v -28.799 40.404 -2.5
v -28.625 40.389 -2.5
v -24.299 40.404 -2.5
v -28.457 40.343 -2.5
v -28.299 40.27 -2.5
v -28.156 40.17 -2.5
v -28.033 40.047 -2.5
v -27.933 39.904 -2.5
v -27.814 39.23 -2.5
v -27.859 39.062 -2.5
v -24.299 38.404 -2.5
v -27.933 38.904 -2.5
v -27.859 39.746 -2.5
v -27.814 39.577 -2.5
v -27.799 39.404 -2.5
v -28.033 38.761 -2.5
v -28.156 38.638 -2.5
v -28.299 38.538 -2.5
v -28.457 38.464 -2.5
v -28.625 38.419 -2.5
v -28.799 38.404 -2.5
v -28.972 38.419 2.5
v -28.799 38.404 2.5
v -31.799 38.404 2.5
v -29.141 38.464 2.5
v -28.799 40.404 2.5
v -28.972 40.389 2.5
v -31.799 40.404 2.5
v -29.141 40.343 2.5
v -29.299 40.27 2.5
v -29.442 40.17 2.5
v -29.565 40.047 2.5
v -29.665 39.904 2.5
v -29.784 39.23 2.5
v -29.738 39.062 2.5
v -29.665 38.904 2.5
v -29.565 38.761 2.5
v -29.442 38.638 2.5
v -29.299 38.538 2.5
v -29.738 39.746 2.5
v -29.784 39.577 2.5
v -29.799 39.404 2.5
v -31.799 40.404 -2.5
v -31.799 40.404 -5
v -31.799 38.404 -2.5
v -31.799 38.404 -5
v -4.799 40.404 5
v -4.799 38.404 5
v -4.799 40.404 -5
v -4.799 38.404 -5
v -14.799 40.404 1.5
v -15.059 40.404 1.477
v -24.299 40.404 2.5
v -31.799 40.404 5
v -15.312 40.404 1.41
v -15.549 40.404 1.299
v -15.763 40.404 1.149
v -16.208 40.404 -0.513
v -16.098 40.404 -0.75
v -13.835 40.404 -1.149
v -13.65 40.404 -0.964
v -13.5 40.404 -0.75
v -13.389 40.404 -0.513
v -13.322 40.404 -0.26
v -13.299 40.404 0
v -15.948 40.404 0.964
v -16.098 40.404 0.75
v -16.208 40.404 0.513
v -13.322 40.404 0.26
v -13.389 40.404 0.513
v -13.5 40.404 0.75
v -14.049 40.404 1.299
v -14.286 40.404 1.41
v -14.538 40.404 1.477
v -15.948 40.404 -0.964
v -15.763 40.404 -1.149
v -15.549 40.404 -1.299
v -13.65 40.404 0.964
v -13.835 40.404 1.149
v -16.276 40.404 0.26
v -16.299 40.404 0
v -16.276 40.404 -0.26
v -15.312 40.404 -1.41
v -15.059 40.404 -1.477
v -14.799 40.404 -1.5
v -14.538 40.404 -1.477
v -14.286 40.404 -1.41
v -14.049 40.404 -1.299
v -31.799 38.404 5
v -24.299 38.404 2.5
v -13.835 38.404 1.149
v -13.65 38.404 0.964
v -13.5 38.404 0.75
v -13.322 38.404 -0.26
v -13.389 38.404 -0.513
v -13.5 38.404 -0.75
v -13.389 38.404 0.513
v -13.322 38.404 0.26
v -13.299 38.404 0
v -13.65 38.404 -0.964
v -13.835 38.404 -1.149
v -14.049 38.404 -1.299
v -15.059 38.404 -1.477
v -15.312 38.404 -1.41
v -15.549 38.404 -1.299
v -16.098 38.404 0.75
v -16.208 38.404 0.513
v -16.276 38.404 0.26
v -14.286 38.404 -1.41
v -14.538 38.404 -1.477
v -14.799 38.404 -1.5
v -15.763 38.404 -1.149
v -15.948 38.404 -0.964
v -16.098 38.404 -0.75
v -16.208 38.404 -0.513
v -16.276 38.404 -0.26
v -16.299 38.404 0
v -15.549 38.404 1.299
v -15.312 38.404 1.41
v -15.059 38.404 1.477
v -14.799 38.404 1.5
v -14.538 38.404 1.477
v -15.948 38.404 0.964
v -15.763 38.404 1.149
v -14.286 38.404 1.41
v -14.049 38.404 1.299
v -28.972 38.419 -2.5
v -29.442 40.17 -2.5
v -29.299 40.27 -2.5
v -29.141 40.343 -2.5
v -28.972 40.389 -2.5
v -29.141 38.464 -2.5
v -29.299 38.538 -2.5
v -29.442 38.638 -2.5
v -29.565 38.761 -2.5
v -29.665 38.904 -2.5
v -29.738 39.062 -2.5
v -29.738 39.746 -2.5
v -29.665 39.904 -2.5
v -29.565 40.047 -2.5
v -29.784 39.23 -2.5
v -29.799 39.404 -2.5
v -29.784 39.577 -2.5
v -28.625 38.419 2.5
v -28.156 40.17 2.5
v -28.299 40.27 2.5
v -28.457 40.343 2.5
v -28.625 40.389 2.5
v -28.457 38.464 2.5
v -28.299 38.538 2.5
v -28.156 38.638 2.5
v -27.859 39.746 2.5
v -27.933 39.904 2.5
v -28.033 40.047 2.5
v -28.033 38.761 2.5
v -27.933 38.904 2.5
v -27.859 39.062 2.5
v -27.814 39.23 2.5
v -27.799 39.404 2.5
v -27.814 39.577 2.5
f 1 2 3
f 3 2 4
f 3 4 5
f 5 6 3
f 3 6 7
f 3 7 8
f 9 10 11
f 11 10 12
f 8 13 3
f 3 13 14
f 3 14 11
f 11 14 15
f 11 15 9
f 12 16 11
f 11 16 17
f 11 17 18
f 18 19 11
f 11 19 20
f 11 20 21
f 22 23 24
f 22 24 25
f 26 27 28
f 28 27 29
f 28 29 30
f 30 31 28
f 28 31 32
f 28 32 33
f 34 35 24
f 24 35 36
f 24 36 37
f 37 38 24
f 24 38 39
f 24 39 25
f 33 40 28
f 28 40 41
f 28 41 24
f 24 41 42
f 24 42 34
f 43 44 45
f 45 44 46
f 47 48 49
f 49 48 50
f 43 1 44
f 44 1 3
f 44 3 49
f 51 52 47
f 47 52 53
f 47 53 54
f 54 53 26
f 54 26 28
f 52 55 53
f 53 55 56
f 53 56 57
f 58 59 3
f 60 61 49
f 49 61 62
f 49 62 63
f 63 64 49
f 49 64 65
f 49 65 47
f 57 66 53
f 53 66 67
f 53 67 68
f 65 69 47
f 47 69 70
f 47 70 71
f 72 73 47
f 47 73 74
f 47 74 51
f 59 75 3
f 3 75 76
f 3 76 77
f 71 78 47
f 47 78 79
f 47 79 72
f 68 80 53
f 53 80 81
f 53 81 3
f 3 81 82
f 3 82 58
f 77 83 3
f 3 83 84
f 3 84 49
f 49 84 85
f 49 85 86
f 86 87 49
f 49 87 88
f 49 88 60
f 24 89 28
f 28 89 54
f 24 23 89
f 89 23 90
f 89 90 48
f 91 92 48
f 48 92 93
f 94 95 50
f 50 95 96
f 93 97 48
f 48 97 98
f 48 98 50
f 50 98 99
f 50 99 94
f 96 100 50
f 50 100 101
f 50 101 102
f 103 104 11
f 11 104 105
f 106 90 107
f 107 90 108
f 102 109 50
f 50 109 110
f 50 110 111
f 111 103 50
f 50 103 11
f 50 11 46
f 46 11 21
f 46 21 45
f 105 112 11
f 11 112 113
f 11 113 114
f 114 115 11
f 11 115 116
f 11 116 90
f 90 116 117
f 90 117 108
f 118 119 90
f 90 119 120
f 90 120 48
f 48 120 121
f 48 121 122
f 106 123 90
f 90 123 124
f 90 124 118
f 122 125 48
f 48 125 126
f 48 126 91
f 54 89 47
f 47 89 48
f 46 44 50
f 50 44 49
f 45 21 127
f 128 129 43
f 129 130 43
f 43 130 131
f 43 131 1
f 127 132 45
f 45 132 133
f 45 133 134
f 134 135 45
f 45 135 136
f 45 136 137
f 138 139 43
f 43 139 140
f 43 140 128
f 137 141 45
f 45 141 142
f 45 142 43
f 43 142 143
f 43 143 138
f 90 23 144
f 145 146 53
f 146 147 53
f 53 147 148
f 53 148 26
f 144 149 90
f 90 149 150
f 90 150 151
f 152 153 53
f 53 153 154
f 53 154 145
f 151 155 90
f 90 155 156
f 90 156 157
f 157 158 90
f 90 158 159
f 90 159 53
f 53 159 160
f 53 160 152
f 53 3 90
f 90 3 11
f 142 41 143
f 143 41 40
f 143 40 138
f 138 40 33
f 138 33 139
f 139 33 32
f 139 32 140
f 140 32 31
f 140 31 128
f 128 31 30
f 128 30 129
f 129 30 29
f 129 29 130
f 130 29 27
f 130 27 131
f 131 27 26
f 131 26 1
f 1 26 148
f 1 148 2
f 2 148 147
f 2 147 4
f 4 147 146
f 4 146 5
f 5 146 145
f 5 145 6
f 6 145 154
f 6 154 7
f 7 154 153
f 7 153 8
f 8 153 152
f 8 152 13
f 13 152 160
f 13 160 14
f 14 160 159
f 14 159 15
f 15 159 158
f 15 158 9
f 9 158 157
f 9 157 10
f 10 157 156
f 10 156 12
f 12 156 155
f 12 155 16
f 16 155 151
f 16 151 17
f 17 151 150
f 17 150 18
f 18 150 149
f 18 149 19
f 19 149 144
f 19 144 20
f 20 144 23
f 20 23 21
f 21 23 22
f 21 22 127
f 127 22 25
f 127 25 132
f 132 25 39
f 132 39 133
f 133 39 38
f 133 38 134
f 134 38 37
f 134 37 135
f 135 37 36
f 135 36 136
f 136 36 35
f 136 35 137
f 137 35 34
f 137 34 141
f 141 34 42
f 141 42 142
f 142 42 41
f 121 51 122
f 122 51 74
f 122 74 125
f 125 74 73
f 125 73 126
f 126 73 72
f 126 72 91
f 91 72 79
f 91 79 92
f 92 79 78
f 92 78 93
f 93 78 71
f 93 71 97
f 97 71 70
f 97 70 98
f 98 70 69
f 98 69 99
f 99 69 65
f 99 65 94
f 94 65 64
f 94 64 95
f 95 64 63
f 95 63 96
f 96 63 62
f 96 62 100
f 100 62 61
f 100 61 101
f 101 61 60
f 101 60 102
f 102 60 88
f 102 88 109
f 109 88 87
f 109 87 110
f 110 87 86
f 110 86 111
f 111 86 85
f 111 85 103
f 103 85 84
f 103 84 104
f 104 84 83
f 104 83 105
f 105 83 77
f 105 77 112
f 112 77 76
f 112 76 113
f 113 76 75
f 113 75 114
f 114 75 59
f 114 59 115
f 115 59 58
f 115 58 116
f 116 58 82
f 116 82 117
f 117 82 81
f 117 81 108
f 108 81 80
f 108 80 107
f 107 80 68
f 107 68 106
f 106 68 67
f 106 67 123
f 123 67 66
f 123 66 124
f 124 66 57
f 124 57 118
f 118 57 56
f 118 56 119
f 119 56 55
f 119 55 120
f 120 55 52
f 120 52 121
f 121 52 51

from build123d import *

# Parameters (mm, degrees)
Y_KSEKLIK_EKSTR_ZYON1_DEPTH = 5
IZIM2_W                     = 15
IZIM2_H                     = 5
KES_EKSTR_ZYON1_DEPTH       = 10
IZIM4_R                     = 1
Y_KSEKLIK_EKSTR_ZYON2_DEPTH = 2.5
IZIM5_R                     = 1.5
KES_EKSTR_ZYON2_DEPTH       = 5


with BuildPart() as part:
    # Çizim1 → Yükseklik-Ekstrüzyon1 (new body, symmetric)
    with BuildSketch(Plane.XY):
        Polygon((-29.798797212, 38.403805497), (-4.798797212, 38.403805497), (-4.798797212, 40.403805497), (-31.798797212, 40.403805497), (-31.798797212, 38.403805497), align=None)
    extrude(amount=Y_KSEKLIK_EKSTR_ZYON1_DEPTH, both=True)

    # Çizim2 → Kes-Ekstrüzyon1 (cut)
    with BuildSketch(Plane(origin=(0, 40.403805497, 0), x_dir=(1, 0, 0), z_dir=(0, 1, 0))):
        with Locations((-31.798797212, 0)):
            Rectangle(IZIM2_W, IZIM2_H)
    extrude(amount=-KES_EKSTR_ZYON1_DEPTH, mode=Mode.SUBTRACT)

    # Çizim4 → Yükseklik-Ekstrüzyon2 (add, symmetric)
    with BuildSketch(Plane.XY):
        with Locations((-28.798797212, 39.403805497)):
            Circle(IZIM4_R)
    extrude(amount=Y_KSEKLIK_EKSTR_ZYON2_DEPTH, both=True)

    # Çizim5 → Kes-Ekstrüzyon2 (cut)
    with BuildSketch(Plane(origin=(0, 40.403805497, 0), x_dir=(1, 0, 0), z_dir=(0, 1, 0))):
        with Locations((-14.798797212, 0)):
            Circle(IZIM5_R)
    extrude(amount=-KES_EKSTR_ZYON2_DEPTH, mode=Mode.SUBTRACT)


solid = part.part
